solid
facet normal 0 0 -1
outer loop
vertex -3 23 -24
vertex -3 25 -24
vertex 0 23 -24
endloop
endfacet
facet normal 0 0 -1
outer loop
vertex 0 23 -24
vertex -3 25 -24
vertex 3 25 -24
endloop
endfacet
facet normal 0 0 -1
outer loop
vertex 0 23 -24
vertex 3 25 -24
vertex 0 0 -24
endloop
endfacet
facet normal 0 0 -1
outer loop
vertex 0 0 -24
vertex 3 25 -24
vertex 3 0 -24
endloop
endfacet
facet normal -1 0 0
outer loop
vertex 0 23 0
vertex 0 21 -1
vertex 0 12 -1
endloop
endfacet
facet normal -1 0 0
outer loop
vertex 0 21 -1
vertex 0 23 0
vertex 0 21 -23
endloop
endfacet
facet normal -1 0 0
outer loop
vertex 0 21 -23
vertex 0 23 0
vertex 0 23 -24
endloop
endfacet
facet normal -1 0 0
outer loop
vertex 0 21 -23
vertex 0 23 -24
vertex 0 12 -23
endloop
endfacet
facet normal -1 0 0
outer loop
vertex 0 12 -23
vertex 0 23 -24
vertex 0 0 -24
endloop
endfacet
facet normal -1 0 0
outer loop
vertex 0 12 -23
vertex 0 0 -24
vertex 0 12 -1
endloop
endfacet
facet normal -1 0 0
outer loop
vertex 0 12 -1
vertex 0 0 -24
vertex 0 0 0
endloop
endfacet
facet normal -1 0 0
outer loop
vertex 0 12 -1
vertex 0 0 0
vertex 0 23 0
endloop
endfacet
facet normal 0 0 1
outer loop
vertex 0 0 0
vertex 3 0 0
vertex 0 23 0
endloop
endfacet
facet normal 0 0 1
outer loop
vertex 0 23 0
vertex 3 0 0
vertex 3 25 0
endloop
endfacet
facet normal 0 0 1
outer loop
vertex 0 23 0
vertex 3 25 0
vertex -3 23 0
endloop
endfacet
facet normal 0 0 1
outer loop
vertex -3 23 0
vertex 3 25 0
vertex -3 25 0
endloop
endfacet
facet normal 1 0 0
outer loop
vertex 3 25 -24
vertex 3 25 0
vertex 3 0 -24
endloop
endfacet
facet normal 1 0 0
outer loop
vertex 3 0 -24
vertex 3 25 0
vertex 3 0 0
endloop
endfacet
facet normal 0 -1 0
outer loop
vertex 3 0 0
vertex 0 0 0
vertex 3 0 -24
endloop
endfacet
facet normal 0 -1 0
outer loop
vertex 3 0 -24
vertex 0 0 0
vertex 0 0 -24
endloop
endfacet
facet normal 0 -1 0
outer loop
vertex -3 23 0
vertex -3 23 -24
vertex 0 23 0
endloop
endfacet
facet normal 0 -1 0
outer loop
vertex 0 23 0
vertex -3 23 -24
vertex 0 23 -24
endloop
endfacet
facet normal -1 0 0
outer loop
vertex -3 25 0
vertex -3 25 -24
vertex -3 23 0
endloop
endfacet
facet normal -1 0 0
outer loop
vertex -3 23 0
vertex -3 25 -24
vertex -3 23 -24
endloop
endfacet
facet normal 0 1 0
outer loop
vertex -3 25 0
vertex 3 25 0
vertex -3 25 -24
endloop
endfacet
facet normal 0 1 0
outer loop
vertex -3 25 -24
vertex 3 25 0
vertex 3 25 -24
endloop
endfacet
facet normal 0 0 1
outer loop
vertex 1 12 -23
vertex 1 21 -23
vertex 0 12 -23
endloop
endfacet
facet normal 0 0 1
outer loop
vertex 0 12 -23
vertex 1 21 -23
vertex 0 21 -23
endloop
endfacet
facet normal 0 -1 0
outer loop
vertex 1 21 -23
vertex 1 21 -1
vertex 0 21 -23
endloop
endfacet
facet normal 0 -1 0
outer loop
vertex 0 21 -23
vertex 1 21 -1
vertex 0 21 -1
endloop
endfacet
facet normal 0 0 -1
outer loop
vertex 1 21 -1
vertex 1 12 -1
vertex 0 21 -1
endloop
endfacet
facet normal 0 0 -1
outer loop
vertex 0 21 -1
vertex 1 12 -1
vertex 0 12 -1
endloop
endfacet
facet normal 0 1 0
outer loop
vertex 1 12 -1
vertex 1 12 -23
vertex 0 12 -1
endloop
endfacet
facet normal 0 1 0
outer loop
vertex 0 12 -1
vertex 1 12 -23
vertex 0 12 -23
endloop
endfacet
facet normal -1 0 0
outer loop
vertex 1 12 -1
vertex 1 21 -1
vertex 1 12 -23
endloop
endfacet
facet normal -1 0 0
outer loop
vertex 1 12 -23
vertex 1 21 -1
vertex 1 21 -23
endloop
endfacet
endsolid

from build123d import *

# Parameters (mm, degrees)
SKETCH1_W           = 3
SKETCH1_H           = 24
BOSS_EXTRUDE1_DEPTH = 23
SKETCH2_W           = 6
SKETCH2_H           = 24
BOSS_EXTRUDE2_DEPTH = 2
SKETCH3_W           = 22
SKETCH3_H           = 9
CUT_EXTRUDE1_DEPTH  = 1


with BuildPart() as part:
    # Sketch1 → Boss-Extrude1 (new body)
    with BuildSketch(Plane(origin=(0, 0, 0), x_dir=(1, 0, 0), z_dir=(0, 1, 0))):
        with Locations((1.5, 12)):
            Rectangle(SKETCH1_W, SKETCH1_H)
    extrude(amount=BOSS_EXTRUDE1_DEPTH)

    # Sketch2 → Boss-Extrude2 (add)
    with BuildSketch(Plane(origin=(0, 23, 0), x_dir=(1, 0, 0), z_dir=(0, 1, 0))):
        with Locations((0, 12)):
            Rectangle(SKETCH2_W, SKETCH2_H)
    extrude(amount=BOSS_EXTRUDE2_DEPTH)

    # Sketch3 → Cut-Extrude1 (cut)
    with BuildSketch(Plane.ZY):
        with Locations((-12, 16.5)):
            Rectangle(SKETCH3_W, SKETCH3_H)
    extrude(amount=-CUT_EXTRUDE1_DEPTH, mode=Mode.SUBTRACT)


solid = part.part
